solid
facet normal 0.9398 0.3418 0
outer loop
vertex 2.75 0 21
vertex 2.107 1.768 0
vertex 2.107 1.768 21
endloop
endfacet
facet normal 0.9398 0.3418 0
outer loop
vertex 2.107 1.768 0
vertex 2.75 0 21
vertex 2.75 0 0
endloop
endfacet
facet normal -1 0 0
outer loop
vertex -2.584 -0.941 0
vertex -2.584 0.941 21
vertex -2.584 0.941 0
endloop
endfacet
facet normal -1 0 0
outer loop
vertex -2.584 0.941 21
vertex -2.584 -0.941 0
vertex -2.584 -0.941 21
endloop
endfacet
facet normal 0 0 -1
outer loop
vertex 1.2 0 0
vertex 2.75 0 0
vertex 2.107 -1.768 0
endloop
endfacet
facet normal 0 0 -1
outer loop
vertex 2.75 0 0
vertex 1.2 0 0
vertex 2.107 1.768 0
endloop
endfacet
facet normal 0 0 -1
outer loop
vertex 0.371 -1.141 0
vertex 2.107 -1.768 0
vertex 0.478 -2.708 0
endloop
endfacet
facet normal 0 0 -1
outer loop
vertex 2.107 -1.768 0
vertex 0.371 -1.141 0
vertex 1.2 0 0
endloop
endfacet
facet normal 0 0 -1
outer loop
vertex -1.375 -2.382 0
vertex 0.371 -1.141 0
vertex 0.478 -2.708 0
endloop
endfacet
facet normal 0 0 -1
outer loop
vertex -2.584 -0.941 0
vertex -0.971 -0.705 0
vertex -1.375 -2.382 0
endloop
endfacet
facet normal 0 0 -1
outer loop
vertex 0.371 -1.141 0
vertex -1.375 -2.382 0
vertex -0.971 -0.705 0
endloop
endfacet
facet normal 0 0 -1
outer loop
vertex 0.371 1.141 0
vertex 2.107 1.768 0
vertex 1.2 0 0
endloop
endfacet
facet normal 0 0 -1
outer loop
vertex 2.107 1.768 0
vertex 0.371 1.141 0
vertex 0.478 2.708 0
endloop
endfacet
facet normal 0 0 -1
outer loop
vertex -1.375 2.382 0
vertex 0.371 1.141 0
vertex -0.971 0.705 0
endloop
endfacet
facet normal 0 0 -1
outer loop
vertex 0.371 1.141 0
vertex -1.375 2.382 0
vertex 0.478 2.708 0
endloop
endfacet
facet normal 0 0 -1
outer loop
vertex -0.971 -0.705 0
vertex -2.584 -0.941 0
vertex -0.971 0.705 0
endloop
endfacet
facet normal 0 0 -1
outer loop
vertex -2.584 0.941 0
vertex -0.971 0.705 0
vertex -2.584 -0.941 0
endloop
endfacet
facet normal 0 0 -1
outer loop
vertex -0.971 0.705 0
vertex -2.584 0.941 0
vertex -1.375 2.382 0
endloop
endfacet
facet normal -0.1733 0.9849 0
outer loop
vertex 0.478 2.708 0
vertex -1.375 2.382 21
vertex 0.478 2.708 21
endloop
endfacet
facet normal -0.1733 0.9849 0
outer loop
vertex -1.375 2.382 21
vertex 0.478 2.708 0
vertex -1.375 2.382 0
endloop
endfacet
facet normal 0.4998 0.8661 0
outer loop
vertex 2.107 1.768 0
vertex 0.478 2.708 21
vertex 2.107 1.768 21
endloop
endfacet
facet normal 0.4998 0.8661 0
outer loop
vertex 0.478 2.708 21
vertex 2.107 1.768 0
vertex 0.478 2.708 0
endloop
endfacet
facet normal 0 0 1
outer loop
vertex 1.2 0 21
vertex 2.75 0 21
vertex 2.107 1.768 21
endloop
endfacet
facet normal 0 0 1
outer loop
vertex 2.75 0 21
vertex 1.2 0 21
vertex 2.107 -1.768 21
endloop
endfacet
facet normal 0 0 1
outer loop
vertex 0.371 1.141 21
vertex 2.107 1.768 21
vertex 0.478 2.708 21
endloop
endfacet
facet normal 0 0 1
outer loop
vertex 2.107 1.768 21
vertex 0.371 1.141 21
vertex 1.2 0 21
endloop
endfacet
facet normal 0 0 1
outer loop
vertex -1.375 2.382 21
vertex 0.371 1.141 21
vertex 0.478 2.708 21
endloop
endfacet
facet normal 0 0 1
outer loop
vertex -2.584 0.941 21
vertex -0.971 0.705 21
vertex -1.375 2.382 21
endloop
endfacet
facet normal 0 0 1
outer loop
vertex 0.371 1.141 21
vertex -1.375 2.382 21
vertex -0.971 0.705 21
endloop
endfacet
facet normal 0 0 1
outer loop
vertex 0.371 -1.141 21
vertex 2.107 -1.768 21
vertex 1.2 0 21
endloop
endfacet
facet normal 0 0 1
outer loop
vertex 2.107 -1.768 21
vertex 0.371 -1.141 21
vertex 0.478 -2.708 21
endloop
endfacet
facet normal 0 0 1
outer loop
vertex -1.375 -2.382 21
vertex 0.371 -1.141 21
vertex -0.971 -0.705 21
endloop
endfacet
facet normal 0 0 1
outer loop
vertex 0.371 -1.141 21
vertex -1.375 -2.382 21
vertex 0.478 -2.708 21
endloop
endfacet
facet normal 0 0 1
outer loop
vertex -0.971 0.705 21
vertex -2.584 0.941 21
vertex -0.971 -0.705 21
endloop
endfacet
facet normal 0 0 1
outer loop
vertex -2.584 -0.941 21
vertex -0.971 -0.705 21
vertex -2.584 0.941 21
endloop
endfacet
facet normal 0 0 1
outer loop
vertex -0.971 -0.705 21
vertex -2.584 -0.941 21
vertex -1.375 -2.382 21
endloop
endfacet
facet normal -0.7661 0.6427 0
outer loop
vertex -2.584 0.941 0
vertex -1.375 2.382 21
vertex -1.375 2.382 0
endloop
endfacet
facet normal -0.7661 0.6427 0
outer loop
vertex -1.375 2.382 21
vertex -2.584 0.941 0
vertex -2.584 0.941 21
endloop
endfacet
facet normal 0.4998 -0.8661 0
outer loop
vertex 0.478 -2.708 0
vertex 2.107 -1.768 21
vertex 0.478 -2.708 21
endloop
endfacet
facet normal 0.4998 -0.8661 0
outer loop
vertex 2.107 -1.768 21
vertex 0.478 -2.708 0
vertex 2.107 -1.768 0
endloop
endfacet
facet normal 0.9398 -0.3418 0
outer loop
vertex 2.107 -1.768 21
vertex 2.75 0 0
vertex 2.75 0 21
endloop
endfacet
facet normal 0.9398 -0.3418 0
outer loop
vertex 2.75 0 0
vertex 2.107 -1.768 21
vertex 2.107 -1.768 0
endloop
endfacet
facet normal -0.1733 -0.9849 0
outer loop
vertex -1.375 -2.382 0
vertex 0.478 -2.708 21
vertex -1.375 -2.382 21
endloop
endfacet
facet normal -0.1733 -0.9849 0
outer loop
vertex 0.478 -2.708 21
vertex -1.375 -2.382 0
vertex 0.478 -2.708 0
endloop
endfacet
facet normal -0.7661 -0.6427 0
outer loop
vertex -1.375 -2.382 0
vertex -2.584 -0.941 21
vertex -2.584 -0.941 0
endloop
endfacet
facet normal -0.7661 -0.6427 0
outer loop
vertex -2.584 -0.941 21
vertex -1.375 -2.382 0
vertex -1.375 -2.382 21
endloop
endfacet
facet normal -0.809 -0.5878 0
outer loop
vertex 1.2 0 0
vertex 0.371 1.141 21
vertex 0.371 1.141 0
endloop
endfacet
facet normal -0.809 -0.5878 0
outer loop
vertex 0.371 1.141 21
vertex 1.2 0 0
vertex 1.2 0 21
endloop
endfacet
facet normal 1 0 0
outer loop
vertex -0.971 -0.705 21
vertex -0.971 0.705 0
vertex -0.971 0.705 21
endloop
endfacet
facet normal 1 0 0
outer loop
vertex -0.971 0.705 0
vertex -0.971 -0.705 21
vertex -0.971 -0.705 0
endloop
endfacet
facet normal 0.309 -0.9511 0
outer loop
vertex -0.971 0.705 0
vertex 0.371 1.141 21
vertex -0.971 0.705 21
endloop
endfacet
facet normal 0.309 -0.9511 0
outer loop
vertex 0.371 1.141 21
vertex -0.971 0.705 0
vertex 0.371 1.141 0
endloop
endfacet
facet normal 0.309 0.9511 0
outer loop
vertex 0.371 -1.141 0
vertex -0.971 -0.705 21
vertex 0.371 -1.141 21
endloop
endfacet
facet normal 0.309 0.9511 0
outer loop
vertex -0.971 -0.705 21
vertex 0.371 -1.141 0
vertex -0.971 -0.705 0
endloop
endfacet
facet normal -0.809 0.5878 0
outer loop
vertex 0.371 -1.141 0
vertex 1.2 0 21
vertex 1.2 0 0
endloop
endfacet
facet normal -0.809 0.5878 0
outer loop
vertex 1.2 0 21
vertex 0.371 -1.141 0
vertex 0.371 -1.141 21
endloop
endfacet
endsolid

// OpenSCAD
// For an M 2.5 screw thread, the major diameter (the nominal outer diameter) is 2.5 mm, and the minor diameter (the smallest diameter) is 2.013 mm


// struts
difference() {
    cylinder(h=21,d=5.5);
    cylinder(h=22,d=2.4);
}
